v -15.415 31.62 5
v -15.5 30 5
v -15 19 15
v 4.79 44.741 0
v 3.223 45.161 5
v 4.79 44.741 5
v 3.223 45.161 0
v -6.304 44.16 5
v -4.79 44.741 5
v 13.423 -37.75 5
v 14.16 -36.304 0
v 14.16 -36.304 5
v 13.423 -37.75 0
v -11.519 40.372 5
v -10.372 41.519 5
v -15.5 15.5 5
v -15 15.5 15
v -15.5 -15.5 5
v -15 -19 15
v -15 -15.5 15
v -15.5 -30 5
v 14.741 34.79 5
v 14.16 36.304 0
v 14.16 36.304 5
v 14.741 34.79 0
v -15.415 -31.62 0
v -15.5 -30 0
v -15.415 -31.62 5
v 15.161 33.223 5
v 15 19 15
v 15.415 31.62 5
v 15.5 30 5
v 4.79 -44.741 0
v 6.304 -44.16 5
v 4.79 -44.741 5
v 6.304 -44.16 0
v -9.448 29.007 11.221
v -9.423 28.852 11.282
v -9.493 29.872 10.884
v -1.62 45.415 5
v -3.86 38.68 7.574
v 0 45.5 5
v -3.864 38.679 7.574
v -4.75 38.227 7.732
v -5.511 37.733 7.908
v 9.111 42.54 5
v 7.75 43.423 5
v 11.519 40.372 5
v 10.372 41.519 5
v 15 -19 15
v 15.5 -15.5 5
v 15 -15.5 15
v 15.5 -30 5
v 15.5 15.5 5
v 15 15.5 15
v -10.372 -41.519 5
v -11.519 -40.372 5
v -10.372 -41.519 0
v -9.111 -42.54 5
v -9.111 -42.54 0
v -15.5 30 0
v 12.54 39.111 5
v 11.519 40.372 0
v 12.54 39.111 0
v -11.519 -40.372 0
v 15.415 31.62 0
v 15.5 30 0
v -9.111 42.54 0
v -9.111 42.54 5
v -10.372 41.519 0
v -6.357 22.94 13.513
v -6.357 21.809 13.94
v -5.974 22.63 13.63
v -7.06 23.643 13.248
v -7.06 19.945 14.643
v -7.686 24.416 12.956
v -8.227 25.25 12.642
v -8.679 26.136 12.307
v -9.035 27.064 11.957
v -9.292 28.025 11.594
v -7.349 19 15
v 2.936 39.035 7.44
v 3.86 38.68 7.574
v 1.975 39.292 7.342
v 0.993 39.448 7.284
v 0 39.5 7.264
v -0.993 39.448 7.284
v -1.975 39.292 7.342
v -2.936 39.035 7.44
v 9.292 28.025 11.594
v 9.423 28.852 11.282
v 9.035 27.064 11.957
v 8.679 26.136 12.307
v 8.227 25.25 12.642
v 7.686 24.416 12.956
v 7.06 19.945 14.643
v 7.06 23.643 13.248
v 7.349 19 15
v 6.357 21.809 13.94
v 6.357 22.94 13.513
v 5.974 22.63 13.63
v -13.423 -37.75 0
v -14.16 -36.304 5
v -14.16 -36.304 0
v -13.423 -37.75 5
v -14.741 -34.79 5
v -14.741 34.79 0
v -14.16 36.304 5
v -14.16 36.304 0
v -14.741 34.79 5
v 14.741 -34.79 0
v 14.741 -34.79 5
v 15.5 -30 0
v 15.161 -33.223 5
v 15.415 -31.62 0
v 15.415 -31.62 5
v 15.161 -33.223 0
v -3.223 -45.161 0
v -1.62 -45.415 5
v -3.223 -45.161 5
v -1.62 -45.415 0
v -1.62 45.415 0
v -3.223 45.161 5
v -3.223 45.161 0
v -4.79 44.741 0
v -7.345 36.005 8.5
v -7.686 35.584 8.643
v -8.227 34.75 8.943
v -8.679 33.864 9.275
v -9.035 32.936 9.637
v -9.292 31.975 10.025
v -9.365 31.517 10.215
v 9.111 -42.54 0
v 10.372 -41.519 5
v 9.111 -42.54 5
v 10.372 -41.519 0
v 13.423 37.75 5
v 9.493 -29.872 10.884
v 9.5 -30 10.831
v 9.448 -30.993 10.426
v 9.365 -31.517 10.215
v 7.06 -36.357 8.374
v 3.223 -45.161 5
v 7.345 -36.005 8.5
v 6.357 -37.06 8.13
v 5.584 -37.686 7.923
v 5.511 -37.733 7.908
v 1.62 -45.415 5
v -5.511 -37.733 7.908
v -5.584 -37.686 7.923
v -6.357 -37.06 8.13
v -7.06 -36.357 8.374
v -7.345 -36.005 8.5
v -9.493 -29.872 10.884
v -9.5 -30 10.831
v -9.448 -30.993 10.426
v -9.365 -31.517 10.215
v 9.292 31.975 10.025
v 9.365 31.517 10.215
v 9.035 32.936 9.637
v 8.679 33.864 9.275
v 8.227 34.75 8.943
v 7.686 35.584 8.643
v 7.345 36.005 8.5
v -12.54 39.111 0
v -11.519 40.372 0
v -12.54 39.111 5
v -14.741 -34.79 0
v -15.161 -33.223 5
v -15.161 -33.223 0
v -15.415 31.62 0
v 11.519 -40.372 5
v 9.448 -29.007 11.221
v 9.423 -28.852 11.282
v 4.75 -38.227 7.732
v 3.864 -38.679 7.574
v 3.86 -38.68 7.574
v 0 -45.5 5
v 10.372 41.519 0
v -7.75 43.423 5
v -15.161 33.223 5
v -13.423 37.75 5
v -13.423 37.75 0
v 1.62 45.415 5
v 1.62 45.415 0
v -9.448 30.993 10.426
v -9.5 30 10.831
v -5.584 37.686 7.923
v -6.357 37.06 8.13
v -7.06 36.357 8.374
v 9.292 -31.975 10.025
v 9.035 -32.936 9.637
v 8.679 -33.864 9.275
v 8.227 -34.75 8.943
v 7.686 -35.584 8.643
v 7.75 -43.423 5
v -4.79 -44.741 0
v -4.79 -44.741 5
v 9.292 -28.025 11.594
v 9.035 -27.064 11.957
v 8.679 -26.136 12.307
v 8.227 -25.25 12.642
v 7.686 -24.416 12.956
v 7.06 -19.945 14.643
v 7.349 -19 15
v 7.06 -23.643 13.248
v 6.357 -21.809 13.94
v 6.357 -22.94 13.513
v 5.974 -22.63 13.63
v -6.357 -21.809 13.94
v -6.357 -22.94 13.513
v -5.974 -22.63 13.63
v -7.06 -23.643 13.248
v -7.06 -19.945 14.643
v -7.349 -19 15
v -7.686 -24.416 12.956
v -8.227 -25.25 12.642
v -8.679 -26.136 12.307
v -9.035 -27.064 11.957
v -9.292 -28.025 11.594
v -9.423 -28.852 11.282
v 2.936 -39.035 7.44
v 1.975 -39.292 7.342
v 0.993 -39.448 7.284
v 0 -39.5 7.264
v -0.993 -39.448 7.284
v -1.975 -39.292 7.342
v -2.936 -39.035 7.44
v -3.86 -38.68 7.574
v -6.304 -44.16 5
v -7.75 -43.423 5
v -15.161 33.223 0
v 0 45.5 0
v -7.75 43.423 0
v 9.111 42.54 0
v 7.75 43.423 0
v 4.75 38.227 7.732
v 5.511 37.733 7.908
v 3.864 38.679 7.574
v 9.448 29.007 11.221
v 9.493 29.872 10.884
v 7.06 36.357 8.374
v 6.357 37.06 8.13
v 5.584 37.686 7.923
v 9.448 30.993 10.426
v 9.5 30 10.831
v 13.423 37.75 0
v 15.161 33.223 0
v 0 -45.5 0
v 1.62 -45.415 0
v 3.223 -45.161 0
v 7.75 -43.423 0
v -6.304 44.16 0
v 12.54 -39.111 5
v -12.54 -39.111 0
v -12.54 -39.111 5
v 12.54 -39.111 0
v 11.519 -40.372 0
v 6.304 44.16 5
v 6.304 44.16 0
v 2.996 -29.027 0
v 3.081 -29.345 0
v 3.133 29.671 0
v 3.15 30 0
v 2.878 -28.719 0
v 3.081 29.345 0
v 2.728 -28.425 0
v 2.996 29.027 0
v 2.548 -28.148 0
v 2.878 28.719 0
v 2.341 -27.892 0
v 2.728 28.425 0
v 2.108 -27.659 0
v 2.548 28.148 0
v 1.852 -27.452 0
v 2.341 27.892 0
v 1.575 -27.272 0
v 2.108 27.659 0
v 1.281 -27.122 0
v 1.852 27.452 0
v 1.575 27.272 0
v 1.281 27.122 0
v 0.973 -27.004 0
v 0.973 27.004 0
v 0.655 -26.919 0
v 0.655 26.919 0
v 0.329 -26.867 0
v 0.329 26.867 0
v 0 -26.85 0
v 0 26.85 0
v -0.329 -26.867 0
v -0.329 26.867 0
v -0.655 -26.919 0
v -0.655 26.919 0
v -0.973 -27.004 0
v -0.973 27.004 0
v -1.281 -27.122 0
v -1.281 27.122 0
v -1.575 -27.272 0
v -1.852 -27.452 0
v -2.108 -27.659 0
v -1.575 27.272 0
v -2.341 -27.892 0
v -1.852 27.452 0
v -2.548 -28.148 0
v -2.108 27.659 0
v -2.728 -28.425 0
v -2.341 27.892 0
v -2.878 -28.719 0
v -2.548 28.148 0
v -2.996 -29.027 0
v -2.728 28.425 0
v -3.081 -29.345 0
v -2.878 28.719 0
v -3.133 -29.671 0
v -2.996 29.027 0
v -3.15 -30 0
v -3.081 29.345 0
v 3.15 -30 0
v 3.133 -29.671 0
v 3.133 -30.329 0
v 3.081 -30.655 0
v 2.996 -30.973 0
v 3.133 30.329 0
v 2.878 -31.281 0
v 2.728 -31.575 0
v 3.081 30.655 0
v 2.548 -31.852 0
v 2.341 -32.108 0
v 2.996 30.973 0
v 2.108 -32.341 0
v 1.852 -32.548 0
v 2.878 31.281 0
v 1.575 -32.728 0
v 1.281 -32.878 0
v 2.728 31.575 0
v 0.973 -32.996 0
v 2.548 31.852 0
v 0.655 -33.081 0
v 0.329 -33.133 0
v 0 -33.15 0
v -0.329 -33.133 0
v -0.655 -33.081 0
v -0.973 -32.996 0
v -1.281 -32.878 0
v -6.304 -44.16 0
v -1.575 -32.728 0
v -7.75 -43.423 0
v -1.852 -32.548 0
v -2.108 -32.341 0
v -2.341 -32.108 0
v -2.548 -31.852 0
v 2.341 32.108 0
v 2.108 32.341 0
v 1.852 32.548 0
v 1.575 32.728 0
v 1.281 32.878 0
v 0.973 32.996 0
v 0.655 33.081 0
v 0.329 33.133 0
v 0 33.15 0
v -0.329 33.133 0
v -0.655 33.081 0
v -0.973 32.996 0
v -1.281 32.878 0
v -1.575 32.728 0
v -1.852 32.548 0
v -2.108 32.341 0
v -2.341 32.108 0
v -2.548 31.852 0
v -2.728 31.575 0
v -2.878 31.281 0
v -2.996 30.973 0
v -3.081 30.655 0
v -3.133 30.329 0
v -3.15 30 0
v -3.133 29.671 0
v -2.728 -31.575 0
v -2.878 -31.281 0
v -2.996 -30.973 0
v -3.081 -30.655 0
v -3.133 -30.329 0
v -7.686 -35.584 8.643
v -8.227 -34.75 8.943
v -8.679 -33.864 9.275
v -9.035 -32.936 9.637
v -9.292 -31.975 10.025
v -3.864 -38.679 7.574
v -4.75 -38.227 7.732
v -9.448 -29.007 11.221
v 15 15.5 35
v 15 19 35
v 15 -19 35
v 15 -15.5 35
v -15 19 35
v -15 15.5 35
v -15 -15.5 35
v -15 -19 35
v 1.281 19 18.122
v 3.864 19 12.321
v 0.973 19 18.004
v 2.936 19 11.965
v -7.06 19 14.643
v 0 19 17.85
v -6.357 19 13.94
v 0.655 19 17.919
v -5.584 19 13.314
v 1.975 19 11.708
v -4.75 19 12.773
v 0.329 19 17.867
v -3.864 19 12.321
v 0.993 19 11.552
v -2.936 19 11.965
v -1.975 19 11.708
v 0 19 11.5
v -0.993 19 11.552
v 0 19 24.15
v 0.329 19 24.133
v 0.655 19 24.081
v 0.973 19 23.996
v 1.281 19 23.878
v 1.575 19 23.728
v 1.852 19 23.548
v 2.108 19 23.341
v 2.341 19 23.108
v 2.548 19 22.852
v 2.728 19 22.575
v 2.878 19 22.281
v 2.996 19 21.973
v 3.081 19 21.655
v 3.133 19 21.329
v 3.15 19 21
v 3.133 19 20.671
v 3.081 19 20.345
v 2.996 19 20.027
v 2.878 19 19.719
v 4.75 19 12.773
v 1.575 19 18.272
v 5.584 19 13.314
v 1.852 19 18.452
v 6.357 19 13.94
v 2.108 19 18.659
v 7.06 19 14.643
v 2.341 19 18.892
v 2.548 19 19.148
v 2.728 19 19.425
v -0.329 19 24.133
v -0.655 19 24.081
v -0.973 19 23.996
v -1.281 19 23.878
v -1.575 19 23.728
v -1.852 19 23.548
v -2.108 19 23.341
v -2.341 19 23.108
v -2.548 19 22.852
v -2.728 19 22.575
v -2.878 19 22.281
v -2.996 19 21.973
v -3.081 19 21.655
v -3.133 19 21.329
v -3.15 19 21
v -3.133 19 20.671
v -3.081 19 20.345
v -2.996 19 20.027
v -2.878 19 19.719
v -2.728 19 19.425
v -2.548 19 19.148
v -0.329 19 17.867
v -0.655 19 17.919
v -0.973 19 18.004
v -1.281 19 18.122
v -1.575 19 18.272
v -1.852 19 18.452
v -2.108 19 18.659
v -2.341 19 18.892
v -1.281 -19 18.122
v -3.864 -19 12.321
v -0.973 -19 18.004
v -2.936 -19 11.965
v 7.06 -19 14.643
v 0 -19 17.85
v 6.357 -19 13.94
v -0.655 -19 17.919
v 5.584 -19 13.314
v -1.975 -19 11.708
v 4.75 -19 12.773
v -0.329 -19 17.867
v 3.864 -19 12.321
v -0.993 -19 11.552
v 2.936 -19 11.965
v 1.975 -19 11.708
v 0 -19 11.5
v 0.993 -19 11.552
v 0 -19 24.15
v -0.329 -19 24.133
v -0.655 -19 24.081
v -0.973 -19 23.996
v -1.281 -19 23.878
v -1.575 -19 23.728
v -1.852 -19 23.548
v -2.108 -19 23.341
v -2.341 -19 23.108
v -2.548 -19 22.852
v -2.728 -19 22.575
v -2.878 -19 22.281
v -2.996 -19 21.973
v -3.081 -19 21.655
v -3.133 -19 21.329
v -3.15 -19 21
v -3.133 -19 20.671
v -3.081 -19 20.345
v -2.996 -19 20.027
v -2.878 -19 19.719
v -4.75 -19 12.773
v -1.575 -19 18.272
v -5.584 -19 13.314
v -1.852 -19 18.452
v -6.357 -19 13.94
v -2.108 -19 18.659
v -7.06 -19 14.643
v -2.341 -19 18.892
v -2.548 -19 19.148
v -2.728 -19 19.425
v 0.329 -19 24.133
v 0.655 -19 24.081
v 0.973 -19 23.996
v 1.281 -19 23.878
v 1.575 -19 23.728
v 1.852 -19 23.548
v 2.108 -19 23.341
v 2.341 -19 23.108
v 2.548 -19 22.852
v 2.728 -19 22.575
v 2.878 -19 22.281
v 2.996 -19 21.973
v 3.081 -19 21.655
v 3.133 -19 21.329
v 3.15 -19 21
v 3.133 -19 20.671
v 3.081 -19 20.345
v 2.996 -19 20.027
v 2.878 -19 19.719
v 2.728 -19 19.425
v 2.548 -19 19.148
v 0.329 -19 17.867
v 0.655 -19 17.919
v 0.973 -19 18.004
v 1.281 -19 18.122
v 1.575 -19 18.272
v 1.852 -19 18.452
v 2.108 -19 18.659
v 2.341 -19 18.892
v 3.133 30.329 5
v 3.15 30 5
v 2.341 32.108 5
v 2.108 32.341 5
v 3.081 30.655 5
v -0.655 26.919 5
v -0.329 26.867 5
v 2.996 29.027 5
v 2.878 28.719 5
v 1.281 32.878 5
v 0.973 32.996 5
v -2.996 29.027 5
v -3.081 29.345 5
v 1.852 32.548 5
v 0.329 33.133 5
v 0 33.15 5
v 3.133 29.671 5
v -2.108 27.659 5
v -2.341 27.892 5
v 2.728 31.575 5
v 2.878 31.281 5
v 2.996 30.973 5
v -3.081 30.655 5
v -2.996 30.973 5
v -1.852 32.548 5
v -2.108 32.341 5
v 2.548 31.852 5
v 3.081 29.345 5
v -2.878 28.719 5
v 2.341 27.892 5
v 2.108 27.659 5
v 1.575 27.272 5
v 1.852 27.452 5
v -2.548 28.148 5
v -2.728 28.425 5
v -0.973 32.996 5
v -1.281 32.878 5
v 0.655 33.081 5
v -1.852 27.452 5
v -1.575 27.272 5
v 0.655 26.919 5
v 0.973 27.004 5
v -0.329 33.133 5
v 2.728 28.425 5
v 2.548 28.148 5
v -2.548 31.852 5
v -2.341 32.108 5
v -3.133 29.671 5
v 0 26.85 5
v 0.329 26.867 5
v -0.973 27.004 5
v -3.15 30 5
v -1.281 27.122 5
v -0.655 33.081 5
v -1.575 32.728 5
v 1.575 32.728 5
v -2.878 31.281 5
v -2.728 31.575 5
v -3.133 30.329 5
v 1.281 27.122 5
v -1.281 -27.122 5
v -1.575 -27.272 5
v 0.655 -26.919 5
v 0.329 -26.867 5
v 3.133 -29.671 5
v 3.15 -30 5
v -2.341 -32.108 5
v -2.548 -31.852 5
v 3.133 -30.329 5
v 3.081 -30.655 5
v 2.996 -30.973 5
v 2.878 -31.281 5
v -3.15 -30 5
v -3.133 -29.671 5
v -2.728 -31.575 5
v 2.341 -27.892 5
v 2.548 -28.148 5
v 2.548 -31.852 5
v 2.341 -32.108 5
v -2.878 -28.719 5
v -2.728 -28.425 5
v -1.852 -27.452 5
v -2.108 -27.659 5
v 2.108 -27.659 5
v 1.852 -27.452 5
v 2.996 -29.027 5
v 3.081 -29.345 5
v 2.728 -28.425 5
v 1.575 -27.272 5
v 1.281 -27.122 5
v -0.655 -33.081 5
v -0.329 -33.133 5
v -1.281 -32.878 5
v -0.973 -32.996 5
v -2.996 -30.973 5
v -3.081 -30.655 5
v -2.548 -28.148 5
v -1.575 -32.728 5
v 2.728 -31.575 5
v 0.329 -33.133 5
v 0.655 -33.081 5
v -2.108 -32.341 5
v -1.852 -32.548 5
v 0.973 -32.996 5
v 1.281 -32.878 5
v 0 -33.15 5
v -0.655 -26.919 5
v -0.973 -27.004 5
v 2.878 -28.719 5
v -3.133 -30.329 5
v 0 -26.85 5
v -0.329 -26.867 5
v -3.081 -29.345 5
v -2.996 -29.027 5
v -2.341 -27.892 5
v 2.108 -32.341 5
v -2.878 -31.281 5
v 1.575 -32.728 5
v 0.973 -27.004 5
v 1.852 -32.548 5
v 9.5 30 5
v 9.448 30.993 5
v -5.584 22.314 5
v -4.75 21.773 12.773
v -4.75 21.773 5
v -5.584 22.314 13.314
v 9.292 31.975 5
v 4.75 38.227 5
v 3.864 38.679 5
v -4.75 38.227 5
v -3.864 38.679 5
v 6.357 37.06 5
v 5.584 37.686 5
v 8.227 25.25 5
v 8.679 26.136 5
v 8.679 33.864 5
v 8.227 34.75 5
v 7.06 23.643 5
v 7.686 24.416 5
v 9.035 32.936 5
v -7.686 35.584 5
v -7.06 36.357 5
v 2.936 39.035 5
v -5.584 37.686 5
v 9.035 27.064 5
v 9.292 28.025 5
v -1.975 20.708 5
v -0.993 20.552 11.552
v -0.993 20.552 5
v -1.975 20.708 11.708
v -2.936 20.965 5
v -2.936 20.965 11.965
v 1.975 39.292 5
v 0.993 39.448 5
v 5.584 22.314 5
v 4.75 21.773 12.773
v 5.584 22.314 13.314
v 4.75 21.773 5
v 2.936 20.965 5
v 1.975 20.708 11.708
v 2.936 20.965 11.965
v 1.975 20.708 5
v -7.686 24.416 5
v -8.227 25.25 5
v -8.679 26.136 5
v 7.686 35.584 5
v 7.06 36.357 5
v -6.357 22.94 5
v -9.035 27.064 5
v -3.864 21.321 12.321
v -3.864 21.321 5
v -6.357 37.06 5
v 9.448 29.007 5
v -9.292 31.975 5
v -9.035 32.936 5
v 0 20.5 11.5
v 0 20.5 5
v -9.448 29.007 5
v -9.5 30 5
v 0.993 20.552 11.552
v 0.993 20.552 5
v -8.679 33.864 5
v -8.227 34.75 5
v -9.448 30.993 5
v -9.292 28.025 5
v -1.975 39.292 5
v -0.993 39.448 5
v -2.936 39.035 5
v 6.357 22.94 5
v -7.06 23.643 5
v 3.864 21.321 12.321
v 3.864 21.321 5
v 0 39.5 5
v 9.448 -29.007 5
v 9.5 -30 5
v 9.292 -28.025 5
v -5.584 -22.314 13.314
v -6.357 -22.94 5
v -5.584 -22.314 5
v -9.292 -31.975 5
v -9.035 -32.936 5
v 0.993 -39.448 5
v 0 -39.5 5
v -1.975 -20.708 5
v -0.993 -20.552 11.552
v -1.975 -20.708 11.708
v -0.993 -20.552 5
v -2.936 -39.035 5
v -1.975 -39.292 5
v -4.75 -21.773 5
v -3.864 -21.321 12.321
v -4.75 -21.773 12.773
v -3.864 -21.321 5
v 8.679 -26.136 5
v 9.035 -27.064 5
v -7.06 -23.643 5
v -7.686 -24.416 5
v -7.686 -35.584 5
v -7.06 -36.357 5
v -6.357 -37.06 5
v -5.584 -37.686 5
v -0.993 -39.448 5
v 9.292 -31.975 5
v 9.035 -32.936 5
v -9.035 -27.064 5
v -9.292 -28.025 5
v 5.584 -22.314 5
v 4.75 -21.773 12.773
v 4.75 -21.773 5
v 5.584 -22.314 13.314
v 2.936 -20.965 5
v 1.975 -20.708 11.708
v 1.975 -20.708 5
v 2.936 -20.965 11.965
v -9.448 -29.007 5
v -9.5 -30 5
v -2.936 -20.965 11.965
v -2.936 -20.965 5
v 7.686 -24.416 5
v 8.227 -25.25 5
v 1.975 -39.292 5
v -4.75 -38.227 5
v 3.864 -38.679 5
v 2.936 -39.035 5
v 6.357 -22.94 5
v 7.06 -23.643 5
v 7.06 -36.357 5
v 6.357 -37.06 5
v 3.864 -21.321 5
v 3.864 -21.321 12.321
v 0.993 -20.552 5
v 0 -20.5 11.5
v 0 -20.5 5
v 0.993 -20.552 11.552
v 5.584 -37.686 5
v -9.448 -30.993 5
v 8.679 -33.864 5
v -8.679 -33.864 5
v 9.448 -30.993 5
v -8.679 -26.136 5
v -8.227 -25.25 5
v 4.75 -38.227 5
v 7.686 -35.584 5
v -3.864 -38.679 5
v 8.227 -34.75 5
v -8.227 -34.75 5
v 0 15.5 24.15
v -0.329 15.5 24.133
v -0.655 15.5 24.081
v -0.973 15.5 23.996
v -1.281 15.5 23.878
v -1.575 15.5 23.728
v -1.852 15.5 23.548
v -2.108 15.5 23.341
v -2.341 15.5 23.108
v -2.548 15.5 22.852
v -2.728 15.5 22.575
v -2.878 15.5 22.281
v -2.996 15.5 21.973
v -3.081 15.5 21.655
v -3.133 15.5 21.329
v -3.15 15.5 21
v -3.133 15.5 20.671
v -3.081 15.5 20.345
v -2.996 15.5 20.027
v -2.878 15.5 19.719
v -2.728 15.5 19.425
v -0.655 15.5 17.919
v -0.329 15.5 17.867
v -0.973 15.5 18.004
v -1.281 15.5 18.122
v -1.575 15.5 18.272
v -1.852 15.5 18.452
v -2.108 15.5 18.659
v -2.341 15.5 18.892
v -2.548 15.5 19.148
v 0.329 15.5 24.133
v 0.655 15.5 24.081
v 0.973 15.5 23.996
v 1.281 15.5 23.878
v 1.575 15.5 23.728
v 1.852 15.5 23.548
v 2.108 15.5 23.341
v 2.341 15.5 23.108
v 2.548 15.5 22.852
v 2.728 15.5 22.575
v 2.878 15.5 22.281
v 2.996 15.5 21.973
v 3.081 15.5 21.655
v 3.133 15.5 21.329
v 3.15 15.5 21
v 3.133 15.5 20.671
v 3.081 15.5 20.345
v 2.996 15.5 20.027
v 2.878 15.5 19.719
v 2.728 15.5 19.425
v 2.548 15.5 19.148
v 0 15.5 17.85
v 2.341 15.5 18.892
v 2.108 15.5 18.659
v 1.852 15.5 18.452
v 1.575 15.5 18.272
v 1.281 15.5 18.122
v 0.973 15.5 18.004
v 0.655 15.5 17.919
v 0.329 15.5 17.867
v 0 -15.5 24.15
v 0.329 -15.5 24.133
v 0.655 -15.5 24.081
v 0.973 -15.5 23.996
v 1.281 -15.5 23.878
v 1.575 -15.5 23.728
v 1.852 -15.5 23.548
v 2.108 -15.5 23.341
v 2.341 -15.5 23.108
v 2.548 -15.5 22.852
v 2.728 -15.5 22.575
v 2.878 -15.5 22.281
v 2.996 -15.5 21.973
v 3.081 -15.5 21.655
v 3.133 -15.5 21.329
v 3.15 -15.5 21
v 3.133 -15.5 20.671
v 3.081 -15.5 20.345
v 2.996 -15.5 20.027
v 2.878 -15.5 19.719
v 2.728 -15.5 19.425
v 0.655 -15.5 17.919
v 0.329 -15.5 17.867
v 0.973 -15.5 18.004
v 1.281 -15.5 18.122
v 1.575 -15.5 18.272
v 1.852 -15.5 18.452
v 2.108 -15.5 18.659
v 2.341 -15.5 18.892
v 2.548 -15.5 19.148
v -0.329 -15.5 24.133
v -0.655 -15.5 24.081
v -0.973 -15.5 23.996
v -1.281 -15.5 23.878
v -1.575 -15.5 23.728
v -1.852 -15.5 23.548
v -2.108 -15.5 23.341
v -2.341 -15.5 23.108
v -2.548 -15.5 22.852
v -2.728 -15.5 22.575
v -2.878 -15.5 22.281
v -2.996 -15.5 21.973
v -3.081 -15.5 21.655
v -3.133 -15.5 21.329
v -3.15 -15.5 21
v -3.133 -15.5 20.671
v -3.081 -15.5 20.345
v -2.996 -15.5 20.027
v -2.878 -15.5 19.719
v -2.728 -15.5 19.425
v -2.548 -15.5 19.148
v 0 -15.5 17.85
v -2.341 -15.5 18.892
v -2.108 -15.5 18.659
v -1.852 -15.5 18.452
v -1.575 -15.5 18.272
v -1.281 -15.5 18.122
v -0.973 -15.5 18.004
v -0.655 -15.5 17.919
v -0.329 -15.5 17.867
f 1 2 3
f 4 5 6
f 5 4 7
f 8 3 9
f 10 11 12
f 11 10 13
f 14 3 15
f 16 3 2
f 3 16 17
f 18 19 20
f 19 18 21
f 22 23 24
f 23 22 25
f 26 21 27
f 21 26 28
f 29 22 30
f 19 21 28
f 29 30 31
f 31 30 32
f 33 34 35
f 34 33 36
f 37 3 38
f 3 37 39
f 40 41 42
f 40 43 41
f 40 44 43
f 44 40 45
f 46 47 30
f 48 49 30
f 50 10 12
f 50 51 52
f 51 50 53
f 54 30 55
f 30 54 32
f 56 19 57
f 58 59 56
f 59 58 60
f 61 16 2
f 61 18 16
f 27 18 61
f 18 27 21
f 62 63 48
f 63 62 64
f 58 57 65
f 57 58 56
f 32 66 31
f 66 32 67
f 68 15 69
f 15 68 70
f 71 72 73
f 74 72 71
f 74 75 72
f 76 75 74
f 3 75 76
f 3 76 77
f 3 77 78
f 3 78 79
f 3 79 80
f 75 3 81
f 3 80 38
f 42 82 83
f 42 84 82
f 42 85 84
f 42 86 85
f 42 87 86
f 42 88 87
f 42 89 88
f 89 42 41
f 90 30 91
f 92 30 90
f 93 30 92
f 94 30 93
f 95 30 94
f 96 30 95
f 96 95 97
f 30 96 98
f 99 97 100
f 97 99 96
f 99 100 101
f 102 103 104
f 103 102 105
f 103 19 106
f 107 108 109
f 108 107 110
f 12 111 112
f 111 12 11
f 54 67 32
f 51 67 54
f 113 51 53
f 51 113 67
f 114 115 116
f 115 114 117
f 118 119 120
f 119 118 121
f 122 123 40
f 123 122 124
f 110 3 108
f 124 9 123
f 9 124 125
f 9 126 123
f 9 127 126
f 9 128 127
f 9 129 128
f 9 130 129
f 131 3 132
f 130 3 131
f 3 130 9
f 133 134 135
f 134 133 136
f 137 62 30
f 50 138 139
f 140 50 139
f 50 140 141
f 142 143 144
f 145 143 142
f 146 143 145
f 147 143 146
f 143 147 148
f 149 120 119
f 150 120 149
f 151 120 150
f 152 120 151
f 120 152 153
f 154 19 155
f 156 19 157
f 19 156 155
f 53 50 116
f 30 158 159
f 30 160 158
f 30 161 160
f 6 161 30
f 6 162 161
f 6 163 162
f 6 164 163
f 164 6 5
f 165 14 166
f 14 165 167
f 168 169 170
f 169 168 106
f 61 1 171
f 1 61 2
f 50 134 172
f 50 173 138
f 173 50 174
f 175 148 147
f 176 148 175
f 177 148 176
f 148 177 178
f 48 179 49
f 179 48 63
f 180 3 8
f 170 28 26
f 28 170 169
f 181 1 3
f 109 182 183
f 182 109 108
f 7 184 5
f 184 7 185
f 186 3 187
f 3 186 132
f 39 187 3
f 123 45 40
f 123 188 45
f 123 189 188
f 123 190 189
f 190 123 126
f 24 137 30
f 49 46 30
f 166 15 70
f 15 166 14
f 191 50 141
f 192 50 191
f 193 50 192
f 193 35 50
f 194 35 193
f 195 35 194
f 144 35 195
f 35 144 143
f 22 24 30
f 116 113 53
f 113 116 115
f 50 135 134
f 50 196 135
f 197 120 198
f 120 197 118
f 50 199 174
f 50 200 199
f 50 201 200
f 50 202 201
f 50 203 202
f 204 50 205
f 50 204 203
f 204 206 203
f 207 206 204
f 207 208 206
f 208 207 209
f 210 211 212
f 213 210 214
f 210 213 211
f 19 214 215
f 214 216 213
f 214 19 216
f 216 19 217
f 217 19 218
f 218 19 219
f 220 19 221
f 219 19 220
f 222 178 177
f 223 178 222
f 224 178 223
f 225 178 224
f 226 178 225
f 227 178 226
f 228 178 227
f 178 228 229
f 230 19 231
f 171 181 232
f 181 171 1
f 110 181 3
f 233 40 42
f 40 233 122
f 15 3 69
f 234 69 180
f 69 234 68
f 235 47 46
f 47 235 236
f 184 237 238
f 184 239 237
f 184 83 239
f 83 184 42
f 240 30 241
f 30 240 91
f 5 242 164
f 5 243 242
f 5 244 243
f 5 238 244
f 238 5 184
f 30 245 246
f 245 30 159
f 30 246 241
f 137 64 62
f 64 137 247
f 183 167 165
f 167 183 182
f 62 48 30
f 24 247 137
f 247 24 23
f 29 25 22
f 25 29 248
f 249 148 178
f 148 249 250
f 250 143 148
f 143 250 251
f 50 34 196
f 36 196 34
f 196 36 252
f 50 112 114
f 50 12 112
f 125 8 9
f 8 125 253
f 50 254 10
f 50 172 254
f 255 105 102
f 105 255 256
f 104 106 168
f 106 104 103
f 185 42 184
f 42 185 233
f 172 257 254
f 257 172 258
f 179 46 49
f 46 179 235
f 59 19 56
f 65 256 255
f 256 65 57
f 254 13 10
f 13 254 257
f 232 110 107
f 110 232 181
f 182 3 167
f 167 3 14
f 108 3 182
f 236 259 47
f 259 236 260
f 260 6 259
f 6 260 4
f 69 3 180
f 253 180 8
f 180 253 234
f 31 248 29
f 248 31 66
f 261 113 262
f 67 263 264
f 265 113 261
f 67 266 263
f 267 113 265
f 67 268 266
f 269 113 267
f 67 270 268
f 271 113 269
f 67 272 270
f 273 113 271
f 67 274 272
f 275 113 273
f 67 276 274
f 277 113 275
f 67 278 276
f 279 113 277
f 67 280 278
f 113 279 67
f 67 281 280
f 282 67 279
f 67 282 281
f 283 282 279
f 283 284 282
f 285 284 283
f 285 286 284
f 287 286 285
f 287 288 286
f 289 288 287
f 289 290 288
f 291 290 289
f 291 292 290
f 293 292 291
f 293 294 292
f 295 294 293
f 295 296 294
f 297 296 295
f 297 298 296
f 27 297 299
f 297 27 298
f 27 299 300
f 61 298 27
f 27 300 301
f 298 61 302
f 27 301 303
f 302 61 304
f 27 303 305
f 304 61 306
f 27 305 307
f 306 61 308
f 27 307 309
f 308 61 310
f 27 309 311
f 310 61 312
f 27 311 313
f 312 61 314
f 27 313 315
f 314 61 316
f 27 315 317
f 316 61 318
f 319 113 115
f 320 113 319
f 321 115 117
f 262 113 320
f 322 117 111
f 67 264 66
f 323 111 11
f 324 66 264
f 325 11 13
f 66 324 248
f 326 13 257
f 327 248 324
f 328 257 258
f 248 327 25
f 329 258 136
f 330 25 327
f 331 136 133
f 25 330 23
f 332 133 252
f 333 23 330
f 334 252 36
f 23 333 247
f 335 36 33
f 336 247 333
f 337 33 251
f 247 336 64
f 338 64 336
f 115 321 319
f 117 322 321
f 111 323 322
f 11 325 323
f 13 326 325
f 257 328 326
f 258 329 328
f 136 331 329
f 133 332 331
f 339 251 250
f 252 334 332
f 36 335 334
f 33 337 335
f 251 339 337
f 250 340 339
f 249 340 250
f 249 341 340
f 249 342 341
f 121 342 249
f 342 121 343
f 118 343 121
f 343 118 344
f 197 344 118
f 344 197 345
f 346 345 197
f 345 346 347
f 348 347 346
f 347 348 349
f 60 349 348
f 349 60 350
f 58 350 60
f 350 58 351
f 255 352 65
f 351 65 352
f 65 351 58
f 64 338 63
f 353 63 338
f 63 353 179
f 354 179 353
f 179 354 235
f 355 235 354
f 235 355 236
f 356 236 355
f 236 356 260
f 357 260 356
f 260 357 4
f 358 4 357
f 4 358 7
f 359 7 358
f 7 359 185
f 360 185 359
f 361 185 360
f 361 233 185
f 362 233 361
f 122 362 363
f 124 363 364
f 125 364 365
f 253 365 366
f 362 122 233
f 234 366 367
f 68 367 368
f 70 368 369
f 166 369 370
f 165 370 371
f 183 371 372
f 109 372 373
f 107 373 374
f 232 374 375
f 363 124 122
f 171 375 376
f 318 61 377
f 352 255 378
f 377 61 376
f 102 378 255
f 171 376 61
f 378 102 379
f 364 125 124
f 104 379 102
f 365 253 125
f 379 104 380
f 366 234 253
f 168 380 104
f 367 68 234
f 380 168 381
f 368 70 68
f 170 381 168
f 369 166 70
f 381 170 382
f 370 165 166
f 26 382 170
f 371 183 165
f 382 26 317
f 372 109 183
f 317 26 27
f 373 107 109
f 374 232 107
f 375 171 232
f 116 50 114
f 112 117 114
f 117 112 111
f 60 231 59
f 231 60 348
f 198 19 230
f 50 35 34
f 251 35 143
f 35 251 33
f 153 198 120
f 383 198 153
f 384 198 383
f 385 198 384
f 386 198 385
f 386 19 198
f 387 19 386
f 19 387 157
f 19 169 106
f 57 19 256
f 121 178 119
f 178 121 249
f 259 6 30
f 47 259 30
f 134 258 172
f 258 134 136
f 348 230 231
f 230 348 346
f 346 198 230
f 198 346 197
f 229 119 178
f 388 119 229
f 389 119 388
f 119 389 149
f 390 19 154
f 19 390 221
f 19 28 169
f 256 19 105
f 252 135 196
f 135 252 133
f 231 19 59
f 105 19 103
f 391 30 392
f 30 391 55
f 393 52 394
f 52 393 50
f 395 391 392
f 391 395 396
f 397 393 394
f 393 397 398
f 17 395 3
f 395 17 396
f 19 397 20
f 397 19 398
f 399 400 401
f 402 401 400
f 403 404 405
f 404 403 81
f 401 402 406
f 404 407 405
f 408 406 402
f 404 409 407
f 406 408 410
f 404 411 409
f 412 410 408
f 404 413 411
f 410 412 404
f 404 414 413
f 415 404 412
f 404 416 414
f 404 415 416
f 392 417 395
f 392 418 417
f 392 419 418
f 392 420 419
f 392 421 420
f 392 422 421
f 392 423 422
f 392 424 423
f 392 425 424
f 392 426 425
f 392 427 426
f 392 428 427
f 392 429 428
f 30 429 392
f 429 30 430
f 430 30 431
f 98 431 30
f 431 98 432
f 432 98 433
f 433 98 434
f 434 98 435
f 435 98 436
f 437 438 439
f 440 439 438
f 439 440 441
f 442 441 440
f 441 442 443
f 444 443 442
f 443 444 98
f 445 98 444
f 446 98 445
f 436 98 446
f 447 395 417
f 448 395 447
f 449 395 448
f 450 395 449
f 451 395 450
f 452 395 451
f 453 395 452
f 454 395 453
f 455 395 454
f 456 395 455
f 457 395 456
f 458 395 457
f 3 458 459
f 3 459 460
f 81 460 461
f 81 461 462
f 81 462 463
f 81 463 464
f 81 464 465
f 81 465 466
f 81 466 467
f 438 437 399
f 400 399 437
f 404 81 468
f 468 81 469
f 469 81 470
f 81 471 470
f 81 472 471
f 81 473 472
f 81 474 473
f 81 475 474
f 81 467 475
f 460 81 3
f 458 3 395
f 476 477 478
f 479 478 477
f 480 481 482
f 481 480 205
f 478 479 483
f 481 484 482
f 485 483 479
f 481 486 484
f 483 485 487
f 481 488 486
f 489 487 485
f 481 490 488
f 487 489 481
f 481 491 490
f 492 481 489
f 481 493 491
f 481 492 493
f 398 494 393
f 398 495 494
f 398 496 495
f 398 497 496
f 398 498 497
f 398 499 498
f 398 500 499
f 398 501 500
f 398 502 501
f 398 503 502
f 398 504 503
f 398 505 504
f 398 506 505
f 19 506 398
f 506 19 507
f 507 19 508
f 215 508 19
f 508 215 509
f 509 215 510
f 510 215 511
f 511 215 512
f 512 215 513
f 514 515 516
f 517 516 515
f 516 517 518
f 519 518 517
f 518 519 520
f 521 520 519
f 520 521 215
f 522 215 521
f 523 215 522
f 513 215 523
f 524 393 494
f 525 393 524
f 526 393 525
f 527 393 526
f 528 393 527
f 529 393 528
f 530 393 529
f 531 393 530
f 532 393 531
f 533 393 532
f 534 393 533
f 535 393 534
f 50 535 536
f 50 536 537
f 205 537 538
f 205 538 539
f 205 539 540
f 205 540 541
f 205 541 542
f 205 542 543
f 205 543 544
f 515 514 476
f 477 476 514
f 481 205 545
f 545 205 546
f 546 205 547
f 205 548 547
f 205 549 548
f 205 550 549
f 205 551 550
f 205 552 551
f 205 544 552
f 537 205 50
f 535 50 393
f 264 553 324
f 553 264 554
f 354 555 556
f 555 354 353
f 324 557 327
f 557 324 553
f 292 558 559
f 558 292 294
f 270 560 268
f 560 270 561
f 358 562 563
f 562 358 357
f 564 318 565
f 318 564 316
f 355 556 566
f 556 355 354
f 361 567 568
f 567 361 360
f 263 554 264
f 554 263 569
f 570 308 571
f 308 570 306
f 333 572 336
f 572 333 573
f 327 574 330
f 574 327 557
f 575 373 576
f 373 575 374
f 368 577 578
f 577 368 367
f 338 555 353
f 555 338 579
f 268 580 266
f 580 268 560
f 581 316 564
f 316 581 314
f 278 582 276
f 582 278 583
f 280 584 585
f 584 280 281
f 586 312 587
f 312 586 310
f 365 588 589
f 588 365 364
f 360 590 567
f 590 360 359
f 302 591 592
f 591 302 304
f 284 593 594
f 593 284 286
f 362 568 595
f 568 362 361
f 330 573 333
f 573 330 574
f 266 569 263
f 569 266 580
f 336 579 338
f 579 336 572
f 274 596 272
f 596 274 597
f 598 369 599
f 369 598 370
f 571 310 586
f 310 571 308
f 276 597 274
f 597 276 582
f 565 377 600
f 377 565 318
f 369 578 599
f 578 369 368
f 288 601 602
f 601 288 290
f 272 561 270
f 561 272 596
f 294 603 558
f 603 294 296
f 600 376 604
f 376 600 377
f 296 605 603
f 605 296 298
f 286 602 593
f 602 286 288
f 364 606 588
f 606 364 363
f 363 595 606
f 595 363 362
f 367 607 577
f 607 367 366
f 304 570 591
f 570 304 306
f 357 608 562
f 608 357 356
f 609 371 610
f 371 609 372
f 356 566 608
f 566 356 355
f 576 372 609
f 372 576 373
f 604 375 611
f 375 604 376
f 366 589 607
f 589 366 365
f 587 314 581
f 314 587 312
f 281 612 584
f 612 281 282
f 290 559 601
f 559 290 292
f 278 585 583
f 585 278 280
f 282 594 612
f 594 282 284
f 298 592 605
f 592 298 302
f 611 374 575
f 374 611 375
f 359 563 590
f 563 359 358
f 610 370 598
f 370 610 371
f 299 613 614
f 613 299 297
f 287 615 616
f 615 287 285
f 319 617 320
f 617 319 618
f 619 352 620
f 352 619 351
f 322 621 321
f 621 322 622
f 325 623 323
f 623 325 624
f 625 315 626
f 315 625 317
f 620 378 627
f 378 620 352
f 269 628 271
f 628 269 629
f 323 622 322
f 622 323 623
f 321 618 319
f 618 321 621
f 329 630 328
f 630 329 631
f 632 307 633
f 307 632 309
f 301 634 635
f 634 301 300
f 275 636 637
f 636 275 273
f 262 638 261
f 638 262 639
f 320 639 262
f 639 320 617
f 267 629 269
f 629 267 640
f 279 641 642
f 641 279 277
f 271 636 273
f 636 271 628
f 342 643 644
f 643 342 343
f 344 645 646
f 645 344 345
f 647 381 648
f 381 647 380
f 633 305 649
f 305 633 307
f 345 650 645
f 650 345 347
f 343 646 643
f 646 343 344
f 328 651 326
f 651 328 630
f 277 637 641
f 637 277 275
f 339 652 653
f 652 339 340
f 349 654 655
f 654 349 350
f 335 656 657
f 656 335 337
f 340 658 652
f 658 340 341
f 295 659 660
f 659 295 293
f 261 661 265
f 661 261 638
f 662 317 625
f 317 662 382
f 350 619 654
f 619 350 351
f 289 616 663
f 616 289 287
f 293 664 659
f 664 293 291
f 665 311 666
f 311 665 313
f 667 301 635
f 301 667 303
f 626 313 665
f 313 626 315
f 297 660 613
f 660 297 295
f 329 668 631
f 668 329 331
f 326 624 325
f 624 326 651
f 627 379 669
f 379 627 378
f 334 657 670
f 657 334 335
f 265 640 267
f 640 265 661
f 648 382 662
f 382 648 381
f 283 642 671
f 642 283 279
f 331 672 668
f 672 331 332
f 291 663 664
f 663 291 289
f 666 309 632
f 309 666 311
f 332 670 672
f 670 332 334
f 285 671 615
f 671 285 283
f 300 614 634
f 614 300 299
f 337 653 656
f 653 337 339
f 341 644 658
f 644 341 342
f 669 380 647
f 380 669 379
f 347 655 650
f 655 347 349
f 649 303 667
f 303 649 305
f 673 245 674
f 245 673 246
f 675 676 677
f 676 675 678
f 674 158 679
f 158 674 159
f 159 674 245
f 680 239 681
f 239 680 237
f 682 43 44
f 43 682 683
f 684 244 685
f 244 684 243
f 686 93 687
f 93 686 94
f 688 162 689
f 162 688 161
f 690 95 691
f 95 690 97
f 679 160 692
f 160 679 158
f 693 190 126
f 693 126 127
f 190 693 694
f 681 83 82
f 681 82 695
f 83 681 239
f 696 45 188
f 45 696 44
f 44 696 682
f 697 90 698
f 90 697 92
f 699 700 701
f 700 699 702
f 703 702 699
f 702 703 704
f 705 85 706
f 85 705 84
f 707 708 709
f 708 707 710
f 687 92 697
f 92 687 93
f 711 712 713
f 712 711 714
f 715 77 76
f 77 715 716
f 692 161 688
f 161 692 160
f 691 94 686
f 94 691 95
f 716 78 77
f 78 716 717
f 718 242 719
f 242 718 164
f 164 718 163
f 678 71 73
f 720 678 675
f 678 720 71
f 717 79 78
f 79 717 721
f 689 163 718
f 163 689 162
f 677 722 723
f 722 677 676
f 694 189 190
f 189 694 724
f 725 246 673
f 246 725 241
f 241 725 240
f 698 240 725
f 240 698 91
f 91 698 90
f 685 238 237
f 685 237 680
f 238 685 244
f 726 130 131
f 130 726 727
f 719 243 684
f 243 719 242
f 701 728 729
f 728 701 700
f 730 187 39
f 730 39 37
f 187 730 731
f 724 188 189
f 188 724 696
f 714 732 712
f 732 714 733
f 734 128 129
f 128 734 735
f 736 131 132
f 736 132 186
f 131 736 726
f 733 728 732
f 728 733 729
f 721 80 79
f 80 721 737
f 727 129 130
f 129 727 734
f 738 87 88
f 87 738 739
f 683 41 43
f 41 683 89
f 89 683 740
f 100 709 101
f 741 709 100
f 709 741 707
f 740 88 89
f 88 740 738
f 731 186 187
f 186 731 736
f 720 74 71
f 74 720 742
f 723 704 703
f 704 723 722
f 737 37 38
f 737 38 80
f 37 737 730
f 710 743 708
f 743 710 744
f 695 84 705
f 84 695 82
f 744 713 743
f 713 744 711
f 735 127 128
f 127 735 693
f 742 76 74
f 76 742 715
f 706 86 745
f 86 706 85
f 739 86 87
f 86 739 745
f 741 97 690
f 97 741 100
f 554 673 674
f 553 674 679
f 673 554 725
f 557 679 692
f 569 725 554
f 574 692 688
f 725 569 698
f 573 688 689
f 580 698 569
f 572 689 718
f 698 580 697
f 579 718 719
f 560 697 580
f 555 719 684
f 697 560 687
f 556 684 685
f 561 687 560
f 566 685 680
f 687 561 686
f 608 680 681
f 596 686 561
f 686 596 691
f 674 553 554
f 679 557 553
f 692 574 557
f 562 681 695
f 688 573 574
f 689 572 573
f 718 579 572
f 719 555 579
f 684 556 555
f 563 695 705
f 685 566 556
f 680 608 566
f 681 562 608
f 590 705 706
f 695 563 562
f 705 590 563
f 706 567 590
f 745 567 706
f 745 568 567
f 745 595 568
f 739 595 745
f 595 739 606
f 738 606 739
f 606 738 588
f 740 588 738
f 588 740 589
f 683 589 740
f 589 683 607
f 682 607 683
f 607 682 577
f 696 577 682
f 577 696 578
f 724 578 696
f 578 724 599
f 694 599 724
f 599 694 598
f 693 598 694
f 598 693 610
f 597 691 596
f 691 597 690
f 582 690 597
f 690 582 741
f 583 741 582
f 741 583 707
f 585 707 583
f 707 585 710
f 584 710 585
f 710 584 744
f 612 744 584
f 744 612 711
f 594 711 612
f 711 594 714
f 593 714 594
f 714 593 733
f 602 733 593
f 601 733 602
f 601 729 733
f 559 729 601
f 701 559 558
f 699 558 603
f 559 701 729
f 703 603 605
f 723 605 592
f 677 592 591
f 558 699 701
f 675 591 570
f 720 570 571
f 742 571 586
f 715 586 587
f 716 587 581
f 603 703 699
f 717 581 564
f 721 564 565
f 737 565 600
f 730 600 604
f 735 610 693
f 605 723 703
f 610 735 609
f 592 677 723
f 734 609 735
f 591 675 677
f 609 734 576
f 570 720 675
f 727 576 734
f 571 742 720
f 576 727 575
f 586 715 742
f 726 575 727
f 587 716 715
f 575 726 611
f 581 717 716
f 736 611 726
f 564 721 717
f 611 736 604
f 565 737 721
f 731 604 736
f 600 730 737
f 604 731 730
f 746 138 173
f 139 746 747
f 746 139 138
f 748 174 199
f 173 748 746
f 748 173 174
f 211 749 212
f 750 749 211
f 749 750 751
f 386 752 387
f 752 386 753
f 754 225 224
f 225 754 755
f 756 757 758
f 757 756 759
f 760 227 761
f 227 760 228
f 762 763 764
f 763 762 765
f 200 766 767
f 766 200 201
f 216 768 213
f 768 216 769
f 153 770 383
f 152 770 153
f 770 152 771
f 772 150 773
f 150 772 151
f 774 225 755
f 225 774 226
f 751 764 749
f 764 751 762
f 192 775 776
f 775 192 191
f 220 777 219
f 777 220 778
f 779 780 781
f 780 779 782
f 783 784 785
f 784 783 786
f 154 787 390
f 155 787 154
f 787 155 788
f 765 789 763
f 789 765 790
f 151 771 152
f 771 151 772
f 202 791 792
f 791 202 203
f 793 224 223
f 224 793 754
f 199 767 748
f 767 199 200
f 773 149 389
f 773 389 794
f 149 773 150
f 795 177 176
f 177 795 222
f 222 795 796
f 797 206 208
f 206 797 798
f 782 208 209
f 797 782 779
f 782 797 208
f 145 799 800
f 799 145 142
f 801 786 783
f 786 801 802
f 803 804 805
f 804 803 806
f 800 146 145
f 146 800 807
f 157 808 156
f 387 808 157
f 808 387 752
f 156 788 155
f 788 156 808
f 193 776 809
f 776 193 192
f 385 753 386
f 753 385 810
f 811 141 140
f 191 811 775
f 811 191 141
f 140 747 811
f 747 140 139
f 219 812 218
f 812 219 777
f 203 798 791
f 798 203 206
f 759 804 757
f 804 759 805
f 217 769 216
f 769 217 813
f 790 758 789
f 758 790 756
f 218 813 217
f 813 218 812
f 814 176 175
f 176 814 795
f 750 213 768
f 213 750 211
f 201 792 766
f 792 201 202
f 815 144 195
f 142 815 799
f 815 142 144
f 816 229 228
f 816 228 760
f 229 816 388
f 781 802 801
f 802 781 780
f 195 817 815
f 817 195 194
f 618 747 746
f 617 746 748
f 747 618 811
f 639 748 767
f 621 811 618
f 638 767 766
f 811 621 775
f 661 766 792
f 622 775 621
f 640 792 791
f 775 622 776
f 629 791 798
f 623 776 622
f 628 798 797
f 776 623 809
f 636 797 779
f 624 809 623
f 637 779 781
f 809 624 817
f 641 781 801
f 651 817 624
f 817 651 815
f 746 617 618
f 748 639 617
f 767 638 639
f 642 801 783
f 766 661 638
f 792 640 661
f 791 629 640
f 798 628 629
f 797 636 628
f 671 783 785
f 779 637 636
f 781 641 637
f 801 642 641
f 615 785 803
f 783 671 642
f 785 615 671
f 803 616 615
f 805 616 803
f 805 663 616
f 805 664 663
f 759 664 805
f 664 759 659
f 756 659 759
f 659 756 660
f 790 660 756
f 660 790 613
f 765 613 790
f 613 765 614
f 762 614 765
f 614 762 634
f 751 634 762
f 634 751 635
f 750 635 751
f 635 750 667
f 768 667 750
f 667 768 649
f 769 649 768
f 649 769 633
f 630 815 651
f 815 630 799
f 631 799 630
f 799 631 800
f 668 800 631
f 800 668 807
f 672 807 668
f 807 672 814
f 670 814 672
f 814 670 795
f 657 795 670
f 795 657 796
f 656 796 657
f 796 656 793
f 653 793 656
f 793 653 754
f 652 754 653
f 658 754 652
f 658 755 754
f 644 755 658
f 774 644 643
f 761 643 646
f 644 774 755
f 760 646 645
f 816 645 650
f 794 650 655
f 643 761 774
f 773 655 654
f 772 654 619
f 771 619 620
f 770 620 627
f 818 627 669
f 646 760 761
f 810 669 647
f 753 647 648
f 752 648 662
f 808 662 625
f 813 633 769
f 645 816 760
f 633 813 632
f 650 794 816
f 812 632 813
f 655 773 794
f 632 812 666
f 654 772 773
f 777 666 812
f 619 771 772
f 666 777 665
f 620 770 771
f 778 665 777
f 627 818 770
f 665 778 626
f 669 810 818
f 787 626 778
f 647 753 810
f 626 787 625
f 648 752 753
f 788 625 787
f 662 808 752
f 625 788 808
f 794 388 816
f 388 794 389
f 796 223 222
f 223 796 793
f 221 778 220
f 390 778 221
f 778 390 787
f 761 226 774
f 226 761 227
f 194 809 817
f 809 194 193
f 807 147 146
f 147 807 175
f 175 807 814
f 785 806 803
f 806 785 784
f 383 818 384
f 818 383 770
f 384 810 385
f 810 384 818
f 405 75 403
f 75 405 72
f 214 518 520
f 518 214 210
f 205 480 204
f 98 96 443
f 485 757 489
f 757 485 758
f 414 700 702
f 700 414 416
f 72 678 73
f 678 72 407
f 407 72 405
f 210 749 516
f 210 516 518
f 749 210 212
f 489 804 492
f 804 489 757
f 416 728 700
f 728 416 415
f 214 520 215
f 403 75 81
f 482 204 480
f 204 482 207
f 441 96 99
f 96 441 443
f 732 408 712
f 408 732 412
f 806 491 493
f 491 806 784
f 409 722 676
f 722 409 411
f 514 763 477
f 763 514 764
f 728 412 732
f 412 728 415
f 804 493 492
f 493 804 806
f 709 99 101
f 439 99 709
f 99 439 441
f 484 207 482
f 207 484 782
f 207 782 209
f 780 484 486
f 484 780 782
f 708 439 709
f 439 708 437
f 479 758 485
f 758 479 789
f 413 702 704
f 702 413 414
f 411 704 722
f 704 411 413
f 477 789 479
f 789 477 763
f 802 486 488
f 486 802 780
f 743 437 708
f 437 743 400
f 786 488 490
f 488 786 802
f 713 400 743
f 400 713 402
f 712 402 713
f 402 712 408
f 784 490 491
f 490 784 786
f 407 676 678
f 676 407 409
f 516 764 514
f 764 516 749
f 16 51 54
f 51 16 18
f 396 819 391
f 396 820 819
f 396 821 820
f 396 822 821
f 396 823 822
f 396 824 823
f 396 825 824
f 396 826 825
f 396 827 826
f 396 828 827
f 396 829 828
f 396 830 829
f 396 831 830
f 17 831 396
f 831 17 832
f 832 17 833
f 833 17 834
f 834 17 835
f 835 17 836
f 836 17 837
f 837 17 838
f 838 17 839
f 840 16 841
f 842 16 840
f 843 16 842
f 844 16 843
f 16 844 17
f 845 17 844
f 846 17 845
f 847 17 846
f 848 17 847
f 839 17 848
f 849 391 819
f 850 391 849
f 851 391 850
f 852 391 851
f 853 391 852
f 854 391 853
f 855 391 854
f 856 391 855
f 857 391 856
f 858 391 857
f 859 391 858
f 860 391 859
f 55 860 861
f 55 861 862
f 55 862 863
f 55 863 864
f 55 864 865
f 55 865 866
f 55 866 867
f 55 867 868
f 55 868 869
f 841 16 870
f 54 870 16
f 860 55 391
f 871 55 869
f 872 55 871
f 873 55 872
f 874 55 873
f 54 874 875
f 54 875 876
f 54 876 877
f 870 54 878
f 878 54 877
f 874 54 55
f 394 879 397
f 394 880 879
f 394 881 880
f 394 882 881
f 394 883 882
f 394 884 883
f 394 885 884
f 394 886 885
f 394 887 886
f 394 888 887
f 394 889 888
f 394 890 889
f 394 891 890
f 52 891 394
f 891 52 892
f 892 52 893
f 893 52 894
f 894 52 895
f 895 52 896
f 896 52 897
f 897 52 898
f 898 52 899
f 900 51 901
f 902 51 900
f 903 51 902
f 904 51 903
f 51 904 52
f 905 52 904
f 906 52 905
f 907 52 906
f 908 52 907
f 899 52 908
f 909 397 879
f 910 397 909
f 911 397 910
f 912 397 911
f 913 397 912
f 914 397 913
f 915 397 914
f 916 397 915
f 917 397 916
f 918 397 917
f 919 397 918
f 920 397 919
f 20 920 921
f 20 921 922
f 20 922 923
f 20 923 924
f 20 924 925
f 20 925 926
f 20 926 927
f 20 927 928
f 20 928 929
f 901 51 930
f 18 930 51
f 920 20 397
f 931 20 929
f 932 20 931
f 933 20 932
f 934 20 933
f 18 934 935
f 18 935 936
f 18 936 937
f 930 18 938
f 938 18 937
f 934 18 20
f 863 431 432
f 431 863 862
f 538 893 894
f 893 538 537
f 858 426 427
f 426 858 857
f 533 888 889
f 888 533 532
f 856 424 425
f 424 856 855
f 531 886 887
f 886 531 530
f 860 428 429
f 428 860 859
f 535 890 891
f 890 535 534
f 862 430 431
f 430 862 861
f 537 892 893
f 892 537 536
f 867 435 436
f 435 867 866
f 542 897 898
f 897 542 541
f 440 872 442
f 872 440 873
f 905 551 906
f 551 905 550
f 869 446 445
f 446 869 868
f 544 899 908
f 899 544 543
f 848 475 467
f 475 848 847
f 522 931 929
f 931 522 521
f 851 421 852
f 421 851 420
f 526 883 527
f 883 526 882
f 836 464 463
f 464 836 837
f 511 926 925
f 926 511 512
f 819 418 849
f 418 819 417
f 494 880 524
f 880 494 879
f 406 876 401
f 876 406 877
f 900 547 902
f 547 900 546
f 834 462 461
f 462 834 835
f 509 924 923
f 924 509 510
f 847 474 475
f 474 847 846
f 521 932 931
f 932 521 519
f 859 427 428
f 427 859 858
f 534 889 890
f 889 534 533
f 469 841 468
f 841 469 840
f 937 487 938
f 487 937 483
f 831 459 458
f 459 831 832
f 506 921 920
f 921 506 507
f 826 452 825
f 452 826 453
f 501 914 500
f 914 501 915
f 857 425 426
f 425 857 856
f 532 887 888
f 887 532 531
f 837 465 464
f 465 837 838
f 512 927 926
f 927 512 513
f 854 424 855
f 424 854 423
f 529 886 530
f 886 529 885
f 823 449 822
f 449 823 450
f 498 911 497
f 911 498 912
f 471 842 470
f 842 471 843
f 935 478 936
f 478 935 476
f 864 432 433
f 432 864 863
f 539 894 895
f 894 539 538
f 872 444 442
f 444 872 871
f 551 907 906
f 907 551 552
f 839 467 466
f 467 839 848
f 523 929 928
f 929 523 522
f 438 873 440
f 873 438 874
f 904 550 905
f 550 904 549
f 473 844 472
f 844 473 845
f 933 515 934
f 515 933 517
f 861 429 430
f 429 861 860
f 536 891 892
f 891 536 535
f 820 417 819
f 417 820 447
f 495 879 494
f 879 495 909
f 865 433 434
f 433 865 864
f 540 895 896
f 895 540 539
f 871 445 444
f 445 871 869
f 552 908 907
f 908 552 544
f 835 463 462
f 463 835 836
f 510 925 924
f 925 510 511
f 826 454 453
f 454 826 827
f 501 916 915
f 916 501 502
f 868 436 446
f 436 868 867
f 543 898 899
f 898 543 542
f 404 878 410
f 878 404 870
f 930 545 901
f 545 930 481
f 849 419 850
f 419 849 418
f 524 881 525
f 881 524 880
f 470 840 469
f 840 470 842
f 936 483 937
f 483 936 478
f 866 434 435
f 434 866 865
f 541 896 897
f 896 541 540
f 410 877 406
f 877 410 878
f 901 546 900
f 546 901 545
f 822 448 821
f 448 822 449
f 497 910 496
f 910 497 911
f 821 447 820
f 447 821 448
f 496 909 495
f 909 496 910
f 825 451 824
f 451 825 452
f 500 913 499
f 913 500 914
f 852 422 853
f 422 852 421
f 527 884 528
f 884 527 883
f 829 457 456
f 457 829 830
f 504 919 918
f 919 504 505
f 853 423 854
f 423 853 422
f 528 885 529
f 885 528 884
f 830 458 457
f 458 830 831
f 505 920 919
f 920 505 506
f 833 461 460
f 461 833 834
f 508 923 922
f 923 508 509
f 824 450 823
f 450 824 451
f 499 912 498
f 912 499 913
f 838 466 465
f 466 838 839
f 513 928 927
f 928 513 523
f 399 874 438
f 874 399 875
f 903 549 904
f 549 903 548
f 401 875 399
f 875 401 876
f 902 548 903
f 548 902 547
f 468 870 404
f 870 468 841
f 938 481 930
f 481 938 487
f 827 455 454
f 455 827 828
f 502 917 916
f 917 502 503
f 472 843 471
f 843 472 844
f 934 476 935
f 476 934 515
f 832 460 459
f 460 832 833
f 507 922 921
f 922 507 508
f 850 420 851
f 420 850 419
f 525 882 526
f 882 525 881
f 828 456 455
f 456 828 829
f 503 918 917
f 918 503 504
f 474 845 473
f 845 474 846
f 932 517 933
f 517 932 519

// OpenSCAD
// Profile holder 

$fn=60;

width = 60;

profile = 31;



difference(){
union(){
hull() {
    for(x=[width/2, -width/2]) translate([0, x, 0]) cylinder(d= profile, h=5);
        translate([-15,-15-8/2, 5]) cube([30, 30+8, 10]);
    }
    translate([-15,-15-8/2, 5]) cube([30, 30+8, 30]);
}

translate([-20, -15.5, 5]) cube([40, 31, 40]);

for(x=[width/2, -width/2]) translate([0, x, -1]) cylinder(d=6.3, h=20);
for(x=[width/2, -width/2]) translate([0, x, +5]) cylinder(d=19, h=30);

translate([0, 0, 5+profile/2+0.5]) rotate([90, 0, 0]) cylinder(d=6.3, h=100, center=true);


translate([0, 0, 5+profile/2+0.5]) rotate([90, 0, 0]) difference(){
    cylinder(d=19, h=100, center=true);
    cylinder(d=20, h=30+2*4, center=true);
   }

}
